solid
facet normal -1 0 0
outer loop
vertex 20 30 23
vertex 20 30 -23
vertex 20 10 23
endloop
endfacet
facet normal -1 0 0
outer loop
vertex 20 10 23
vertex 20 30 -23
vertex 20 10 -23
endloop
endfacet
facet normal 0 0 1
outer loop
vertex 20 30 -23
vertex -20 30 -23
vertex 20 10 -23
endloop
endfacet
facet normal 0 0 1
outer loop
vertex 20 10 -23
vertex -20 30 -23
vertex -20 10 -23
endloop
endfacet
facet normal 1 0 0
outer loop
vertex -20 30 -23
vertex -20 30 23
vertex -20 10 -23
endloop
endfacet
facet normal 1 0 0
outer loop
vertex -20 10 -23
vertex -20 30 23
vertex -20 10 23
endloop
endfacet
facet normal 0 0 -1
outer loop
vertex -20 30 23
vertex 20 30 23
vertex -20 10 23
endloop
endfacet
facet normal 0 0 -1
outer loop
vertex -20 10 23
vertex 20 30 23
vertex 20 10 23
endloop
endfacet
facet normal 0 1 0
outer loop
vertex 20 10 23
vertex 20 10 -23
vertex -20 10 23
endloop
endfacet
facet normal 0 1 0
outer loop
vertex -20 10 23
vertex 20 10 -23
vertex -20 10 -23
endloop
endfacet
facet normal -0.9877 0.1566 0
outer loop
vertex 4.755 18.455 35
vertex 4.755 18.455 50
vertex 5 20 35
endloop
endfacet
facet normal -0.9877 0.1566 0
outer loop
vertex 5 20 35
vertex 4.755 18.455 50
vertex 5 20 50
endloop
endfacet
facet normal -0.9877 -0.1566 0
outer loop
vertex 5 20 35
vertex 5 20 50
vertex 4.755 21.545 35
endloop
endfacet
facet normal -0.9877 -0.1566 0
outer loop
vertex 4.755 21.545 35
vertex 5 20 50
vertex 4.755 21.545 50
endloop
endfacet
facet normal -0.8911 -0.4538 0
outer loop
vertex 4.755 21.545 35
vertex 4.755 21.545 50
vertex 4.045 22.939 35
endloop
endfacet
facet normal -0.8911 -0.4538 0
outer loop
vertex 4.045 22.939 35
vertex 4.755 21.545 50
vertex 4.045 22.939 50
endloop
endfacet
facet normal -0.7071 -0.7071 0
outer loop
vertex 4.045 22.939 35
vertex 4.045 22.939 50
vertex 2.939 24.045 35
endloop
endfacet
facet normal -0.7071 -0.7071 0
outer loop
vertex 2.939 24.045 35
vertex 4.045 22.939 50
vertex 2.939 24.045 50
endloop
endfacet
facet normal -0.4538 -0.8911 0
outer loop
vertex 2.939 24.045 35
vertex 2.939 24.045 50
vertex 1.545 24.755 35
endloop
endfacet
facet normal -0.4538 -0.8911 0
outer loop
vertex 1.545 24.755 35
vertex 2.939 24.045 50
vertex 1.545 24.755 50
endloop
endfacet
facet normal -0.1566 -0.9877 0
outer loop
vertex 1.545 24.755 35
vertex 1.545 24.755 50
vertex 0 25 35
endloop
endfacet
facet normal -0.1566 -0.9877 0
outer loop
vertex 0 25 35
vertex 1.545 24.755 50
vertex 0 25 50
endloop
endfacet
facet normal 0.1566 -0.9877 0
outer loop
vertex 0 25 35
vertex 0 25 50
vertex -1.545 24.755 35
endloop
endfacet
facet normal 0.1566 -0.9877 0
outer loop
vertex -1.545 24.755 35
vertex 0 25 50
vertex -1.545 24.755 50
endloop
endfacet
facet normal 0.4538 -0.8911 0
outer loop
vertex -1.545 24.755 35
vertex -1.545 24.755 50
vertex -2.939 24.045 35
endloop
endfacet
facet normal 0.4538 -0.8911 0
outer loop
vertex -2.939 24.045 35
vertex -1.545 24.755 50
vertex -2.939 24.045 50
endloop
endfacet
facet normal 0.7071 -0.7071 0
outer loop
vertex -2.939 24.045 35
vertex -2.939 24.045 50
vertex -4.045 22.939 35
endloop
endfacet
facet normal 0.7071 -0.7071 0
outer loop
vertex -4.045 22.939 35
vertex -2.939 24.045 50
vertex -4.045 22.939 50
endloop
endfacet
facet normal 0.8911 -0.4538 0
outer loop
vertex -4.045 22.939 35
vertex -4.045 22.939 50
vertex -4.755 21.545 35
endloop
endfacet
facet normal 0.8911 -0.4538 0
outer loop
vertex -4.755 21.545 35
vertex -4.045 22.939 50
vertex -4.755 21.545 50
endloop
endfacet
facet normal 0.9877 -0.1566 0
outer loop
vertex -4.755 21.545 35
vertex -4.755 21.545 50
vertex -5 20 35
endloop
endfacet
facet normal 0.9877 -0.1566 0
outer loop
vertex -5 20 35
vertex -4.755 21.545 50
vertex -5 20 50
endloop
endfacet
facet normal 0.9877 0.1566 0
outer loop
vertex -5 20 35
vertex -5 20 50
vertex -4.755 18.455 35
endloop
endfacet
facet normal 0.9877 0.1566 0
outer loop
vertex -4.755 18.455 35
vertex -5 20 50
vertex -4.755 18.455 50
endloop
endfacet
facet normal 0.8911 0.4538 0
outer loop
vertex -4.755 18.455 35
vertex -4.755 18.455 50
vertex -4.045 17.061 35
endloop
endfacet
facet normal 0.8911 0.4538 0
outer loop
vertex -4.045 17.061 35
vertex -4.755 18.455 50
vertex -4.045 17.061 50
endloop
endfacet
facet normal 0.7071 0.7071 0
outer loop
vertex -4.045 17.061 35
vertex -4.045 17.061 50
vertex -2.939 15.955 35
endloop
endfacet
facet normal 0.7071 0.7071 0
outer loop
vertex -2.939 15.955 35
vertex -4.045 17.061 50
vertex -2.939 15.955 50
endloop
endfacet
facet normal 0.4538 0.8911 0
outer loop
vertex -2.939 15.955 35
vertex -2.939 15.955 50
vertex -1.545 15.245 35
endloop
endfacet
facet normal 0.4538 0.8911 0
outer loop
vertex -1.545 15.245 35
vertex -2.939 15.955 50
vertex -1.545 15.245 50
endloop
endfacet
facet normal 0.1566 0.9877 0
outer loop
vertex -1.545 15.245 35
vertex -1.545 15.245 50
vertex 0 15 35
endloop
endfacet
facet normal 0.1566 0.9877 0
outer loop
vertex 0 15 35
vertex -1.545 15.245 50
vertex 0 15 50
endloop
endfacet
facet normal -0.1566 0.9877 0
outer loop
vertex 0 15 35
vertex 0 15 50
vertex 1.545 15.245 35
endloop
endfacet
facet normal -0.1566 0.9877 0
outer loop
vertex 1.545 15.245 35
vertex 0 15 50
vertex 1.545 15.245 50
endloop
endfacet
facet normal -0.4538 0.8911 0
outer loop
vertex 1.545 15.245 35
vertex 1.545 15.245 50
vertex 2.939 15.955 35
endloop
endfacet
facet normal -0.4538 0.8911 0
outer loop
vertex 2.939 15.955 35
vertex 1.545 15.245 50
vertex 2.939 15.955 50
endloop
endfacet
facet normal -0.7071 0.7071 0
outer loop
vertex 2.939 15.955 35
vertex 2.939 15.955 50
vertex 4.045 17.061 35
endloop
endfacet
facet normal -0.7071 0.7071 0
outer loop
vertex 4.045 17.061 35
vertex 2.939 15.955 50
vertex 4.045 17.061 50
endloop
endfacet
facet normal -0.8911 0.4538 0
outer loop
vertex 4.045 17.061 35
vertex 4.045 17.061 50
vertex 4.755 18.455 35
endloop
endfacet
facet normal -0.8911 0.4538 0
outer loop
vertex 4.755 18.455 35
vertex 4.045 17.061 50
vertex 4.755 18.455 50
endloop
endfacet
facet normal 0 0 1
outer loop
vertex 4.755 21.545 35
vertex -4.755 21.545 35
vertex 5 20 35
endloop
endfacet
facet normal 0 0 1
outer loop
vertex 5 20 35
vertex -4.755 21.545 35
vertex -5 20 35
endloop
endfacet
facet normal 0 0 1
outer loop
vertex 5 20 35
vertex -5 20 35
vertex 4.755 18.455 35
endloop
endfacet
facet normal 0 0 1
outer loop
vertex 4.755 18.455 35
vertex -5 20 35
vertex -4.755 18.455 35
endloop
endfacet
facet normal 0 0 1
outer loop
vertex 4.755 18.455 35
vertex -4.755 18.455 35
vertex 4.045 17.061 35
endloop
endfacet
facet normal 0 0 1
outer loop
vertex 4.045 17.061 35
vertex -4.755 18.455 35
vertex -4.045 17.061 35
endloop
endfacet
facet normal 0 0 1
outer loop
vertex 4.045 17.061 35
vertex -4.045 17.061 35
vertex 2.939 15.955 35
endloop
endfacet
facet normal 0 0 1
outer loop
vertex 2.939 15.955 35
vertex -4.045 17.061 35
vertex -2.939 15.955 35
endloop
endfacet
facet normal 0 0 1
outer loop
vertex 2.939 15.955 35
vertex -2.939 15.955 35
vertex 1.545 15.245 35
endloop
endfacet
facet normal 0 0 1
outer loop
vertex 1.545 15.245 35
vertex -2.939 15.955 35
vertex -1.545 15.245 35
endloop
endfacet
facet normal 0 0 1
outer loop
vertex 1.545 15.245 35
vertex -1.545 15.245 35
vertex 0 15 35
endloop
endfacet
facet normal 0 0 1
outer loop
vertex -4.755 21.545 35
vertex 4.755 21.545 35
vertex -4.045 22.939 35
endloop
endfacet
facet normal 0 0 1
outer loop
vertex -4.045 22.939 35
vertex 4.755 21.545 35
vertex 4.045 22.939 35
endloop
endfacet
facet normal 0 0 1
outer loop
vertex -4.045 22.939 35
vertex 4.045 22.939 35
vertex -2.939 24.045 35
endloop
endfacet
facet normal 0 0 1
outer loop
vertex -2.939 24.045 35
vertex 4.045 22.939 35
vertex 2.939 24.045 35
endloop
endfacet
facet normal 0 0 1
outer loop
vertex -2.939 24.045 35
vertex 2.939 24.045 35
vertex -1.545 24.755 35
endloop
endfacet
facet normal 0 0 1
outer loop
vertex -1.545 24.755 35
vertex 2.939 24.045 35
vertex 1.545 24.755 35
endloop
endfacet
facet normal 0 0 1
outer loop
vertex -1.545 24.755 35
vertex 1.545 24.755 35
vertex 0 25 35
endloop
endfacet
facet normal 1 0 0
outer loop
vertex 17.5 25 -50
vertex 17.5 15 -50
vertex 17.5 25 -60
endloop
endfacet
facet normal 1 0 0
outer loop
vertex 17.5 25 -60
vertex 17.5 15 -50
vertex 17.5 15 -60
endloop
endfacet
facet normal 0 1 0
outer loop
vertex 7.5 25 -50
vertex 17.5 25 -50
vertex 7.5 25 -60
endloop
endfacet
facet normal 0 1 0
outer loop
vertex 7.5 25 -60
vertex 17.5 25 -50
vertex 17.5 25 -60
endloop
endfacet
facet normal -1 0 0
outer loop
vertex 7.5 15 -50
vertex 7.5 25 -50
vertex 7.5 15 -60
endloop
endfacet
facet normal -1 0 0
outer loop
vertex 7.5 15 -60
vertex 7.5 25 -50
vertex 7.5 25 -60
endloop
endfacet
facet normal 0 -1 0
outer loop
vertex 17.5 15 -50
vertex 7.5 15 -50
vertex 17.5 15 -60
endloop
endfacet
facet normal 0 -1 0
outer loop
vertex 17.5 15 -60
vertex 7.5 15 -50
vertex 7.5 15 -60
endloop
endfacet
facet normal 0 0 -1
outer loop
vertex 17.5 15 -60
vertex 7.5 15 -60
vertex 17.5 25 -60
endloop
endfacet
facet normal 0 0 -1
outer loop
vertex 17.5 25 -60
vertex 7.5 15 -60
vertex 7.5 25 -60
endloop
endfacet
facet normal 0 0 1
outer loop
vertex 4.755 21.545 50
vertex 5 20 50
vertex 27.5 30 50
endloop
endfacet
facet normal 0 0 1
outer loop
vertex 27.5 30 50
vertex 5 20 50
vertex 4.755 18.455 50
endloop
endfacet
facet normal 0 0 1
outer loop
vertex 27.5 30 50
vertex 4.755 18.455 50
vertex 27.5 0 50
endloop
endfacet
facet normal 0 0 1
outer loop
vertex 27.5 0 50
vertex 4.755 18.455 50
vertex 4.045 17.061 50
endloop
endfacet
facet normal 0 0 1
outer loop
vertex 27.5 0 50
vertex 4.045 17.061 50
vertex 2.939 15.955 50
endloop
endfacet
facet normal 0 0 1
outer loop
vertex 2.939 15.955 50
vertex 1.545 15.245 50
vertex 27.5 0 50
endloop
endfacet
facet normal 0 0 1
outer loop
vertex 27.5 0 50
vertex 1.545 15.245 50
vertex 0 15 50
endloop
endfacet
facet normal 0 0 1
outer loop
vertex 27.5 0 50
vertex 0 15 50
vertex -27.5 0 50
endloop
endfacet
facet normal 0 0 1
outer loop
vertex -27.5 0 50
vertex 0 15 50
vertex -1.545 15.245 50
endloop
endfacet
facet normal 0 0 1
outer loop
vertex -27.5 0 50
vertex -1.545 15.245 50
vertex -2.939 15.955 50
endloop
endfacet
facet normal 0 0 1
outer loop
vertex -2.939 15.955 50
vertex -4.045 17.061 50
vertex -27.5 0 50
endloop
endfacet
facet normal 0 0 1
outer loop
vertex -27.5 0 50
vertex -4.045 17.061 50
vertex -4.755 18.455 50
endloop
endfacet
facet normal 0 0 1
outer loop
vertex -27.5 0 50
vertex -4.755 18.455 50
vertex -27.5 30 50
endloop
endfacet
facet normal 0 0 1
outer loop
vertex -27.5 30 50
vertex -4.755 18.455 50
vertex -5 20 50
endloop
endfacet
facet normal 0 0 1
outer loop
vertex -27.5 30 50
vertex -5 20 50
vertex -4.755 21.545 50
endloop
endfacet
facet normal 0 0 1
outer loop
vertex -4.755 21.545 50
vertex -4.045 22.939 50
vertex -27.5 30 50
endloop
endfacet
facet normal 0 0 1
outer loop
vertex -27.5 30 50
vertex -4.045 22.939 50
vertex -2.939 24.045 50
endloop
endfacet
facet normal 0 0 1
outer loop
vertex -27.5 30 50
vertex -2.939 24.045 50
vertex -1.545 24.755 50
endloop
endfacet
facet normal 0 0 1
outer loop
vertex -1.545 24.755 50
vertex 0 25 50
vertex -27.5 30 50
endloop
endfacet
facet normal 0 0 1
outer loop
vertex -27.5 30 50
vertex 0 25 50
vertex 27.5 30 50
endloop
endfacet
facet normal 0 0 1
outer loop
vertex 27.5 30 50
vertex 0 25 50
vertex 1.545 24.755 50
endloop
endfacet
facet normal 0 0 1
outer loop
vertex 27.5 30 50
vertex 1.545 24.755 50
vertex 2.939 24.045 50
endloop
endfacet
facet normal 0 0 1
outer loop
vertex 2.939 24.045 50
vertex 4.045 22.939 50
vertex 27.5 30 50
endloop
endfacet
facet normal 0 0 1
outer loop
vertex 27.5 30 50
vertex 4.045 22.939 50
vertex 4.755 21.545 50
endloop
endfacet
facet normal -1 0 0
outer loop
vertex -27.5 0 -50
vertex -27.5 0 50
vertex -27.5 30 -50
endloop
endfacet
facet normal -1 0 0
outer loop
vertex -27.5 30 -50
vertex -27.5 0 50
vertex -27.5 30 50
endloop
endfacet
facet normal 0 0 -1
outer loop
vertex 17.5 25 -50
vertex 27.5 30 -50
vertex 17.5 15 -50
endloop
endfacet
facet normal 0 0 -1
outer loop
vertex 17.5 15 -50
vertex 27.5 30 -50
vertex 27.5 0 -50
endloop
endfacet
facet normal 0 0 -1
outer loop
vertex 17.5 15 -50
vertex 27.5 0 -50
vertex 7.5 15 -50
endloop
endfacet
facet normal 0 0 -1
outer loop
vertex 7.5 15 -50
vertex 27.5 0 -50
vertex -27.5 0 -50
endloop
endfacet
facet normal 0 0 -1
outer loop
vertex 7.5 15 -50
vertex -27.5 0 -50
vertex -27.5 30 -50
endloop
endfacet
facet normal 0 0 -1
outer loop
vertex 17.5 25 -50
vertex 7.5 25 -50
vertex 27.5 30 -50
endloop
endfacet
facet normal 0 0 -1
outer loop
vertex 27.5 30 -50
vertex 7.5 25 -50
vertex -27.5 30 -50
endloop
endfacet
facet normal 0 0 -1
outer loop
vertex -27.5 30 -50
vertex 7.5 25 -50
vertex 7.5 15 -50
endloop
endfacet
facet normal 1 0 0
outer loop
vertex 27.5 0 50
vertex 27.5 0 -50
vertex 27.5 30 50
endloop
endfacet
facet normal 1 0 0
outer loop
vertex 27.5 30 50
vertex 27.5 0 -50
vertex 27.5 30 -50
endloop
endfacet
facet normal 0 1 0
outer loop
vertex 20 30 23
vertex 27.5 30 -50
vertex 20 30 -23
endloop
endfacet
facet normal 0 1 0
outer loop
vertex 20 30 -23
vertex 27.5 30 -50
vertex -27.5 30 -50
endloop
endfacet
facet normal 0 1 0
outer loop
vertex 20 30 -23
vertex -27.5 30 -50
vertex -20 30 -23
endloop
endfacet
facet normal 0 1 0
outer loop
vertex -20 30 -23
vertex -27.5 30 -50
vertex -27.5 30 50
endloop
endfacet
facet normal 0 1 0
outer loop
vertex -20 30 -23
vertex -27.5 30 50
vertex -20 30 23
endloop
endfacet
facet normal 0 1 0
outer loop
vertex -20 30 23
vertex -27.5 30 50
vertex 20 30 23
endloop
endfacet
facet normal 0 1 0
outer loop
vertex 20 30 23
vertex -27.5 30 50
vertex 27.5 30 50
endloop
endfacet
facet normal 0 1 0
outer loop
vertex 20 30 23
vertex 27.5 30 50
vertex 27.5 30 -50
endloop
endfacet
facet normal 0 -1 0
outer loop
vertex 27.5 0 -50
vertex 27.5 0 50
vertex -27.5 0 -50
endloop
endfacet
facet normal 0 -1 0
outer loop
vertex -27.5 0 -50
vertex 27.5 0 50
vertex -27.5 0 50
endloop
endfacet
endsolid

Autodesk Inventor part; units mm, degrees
ref_plane "YZ Plane" through (0, 0, 0) normal (1, 0, 0) x (0, 1, 0)
ref_plane "XZ Plane" through (0, 0, 0) normal (0, 1, 0) x (-1, 0, 0)
ref_plane "XY Plane" through (0, 0, 0) normal (0, 0, 1) x (1, 0, 0)
sketch "Boceto1" plane through (0, 0, 0) normal (0, 1, 0) x (-1, 0, 0)
  line L0 (27.5, 50) -> (-27.5, 50)
  line L1 (-27.5, 50) -> (-27.5, -50)
  line L2 (-27.5, -50) -> (27.5, -50)
  line L3 (27.5, -50) -> (27.5, 50)
  line L4 (27.5, 50) -> (-27.5, -50) construction
  line L5 (-27.5, 50) -> (27.5, -50) construction
  point P0 (0, 0)
  dimension "d0" = 55
  dimension "d1" = 100
extrude "Extrusión1" add sketch "Boceto1" along normal blind 30
sketch "Boceto2" plane through (27.5, 0, -50) normal (0, 0, -1) x (-1, 0, 0)
  line L0 (10, 25) -> (20, 25)
  line L1 (20, 25) -> (20, 15)
  line L2 (20, 15) -> (10, 15)
  line L3 (10, 15) -> (10, 25)
  line L4 (10, 25) -> (20, 15) construction
  line L5 (20, 25) -> (10, 15) construction
  line L6 (0, 30) -> (55, 30) projected
  line L7 (0, 0) -> (0, 30) projected
  point P0 (27.5, 0)
  point P1 (15, 20)
  point P2 (15, 25)
  dimension "d4" = 10
  dimension "d5" = 10
  dimension "d6" = 5
  dimension "d7" = 10
extrude "Extrusión2" add sketch "Boceto2" along normal blind 10
sketch "Boceto3" plane through (-27.5, 0, 50) normal (0, 0, 1) x (1, 0, 0)
  circle A0 centre (27.5, 20) radius 5
  line L0 (0, 30) -> (55, 30) projected
  point P0 (27.5, 0)
  point P1 (27.5, 30)
  dimension "d10" = 10
  dimension "d11" = 10
extrude "Extrusión3" cut sketch "Boceto3" against normal blind 15
sketch "Boceto4" plane through (0, 30, 0) normal (0, 1, 0) x (1, 0, 0)
  line L0 (-20, 23) -> (20, 23)
  line L1 (20, 23) -> (20, -23)
  line L2 (20, -23) -> (-20, -23)
  line L3 (-20, -23) -> (-20, 23)
  line L4 (-20, 23) -> (20, -23) construction
  line L5 (20, 23) -> (-20, -23) construction
  point P0 (0, 0)
  dimension "d14" = 40
  dimension "d15" = 46
extrude "Extrusión4" cut sketch "Boceto4" against normal blind 20
properties part number "camera_support_2"
